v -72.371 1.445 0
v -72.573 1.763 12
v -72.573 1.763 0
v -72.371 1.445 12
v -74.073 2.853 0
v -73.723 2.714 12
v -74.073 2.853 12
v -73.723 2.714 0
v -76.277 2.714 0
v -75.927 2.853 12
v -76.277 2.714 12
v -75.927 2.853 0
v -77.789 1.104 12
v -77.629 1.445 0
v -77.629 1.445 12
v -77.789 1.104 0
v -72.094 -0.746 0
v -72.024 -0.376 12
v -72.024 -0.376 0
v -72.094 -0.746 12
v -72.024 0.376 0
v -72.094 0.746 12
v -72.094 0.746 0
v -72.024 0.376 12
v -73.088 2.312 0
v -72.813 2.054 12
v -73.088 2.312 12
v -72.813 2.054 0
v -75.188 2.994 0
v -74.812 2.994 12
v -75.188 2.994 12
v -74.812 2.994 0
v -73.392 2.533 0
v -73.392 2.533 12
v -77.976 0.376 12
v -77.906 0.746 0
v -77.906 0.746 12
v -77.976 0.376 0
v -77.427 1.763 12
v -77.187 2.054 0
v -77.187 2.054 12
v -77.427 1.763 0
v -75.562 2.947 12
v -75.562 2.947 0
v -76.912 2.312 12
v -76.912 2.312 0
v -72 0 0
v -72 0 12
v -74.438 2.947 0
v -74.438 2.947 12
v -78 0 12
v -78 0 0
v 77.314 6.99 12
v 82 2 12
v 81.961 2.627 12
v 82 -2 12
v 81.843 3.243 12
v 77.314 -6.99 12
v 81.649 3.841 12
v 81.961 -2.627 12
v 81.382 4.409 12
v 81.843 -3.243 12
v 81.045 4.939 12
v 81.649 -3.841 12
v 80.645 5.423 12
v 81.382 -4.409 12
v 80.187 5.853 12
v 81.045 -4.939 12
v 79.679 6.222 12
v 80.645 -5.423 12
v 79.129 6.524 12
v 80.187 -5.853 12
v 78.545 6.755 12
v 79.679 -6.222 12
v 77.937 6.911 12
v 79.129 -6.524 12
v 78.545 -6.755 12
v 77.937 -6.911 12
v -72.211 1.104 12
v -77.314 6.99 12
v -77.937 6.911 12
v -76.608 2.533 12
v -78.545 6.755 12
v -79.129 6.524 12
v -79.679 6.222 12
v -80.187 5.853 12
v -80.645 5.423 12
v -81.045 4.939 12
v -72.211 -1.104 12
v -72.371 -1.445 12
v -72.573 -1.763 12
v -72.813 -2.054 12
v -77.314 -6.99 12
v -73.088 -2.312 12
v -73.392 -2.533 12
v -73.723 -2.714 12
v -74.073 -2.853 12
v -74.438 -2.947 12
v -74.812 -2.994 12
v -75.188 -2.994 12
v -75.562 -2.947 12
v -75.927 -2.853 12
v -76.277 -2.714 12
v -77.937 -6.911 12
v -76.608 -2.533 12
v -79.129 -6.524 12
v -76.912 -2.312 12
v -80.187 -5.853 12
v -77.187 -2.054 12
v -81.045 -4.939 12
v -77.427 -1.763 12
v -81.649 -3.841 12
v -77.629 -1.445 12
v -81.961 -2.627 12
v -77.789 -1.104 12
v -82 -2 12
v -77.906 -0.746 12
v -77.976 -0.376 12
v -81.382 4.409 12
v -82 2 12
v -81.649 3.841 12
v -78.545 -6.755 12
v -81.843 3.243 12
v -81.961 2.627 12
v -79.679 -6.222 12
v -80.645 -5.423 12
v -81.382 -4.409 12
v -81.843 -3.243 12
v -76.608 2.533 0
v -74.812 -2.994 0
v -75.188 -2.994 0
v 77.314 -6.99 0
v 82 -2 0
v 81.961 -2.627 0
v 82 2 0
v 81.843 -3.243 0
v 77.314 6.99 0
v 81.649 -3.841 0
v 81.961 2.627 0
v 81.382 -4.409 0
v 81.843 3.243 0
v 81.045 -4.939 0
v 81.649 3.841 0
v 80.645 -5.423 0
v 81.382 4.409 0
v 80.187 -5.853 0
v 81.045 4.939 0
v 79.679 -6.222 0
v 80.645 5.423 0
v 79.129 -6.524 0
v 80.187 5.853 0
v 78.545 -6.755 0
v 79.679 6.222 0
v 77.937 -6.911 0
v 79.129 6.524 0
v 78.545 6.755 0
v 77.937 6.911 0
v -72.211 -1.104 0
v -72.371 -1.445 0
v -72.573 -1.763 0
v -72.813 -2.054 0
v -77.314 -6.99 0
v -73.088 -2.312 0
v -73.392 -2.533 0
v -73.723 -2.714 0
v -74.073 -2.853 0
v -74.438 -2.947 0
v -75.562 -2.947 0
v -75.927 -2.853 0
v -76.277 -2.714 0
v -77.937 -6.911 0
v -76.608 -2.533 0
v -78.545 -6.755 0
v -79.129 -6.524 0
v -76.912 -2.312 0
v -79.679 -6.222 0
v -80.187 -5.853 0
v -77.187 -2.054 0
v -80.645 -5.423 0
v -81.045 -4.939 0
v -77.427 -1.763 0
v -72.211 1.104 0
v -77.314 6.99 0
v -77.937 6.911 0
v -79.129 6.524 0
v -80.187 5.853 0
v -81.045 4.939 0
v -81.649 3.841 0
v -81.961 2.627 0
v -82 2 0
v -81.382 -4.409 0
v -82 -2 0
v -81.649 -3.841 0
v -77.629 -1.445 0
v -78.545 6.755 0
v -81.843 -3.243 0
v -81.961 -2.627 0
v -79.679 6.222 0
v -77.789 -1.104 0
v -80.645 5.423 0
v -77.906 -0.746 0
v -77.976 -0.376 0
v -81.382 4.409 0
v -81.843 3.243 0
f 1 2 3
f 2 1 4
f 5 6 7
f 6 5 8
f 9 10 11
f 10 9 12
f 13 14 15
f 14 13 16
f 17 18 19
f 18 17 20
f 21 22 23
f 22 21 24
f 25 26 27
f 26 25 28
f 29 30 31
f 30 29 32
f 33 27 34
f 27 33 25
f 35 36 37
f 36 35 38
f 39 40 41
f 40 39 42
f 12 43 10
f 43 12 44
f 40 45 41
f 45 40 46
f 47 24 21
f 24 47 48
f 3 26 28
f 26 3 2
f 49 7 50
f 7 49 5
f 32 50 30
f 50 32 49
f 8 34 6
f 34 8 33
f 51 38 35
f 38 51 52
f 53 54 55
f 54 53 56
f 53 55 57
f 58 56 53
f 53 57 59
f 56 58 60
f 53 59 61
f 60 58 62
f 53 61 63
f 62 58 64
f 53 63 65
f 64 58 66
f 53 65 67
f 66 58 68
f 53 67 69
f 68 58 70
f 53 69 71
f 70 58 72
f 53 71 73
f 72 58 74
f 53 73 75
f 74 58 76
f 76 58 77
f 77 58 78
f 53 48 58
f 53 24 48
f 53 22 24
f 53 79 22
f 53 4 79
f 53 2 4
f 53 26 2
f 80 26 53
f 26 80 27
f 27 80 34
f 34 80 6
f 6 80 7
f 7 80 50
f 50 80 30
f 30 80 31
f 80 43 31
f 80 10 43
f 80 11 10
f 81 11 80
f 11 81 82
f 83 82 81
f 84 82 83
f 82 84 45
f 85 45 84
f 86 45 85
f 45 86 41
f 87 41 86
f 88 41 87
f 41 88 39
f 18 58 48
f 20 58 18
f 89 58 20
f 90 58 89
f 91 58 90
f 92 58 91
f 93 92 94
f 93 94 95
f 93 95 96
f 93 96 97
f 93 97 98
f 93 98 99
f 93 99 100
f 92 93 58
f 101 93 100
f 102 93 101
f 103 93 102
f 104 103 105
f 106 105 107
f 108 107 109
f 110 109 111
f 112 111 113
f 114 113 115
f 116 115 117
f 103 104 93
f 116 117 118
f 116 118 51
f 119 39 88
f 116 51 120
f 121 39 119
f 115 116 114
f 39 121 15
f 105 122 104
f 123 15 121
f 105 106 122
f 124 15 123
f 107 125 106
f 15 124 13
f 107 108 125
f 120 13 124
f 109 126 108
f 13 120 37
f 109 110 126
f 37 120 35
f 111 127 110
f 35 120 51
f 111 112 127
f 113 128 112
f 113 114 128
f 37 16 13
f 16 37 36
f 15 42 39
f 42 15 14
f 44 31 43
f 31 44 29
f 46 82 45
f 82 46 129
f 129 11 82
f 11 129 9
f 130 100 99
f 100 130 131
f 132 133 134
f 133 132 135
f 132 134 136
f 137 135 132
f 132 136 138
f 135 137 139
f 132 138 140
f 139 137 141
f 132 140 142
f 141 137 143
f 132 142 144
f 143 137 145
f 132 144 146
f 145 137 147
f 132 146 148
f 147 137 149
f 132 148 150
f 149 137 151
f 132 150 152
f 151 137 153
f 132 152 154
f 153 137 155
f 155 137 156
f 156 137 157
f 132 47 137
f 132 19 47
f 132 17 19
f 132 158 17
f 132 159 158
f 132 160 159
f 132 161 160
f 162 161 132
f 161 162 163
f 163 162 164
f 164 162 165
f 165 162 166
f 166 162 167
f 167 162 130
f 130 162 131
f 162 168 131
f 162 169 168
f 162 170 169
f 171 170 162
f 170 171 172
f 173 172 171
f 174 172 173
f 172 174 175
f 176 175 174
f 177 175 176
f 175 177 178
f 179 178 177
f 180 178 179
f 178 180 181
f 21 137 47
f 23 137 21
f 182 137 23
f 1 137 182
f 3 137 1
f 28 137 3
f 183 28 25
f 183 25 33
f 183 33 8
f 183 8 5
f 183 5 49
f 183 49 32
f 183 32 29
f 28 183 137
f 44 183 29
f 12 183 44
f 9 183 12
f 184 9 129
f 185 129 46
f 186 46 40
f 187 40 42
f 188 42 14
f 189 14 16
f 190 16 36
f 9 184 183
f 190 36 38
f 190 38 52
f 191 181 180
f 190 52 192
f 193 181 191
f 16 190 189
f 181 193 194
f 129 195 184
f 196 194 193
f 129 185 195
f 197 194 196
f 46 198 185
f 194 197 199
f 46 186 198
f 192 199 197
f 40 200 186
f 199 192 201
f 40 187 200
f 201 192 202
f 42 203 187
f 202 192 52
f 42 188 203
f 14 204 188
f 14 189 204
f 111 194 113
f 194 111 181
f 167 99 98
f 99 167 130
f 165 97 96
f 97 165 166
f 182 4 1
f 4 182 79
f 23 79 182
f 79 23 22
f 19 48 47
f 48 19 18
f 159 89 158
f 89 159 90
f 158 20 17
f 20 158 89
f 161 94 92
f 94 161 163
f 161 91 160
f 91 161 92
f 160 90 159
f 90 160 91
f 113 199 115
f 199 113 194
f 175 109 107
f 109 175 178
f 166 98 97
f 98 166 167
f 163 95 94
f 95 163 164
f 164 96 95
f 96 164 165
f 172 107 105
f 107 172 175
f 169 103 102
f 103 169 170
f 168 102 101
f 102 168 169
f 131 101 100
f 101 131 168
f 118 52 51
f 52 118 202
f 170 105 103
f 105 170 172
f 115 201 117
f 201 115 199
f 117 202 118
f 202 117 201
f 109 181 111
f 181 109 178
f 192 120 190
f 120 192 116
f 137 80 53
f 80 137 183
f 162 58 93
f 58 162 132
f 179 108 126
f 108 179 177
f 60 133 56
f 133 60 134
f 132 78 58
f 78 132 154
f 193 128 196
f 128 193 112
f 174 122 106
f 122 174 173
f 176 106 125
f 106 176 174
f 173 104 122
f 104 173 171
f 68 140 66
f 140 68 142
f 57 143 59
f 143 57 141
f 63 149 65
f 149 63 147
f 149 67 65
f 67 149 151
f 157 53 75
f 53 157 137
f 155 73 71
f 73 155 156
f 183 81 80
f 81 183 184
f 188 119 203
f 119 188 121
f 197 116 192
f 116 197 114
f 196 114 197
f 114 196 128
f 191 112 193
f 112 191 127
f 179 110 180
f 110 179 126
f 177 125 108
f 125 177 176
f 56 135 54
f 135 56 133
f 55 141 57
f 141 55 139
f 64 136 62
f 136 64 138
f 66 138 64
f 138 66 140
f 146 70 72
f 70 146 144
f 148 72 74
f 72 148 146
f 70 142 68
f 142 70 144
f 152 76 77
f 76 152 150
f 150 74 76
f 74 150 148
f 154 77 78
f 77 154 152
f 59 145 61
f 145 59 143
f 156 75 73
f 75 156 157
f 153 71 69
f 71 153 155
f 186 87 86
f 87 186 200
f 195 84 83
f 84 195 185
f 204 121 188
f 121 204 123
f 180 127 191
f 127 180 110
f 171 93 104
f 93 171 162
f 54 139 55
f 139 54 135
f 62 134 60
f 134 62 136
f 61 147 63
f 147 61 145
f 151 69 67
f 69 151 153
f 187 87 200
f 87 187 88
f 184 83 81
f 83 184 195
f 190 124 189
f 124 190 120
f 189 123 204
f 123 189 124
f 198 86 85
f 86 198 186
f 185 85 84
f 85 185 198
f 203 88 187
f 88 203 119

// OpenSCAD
$fn = 50;


difference() {
	union() {
		hull() {
			translate(v = [-77.0000000000, 2.0000000000, 0]) {
				cylinder(h = 12, r = 5);
			}
			translate(v = [77.0000000000, 2.0000000000, 0]) {
				cylinder(h = 12, r = 5);
			}
			translate(v = [-77.0000000000, -2.0000000000, 0]) {
				cylinder(h = 12, r = 5);
			}
			translate(v = [77.0000000000, -2.0000000000, 0]) {
				cylinder(h = 12, r = 5);
			}
		}
	}
	union() {
		translate(v = [-75.0000000000, 0.0000000000, 0]) {
			cylinder(h = 12, r = 3.0000000000);
		}
		translate(v = [-75.0000000000, 0.0000000000, 0]) {
			cylinder(h = 12, r = 1.5000000000);
		}
		translate(v = [-75.0000000000, 0.0000000000, 0]) {
			cylinder(h = 12, r = 1.5000000000);
		}
		translate(v = [-75.0000000000, 0.0000000000, 0]) {
			cylinder(h = 12, r = 1.5000000000);
		}
	}
}
